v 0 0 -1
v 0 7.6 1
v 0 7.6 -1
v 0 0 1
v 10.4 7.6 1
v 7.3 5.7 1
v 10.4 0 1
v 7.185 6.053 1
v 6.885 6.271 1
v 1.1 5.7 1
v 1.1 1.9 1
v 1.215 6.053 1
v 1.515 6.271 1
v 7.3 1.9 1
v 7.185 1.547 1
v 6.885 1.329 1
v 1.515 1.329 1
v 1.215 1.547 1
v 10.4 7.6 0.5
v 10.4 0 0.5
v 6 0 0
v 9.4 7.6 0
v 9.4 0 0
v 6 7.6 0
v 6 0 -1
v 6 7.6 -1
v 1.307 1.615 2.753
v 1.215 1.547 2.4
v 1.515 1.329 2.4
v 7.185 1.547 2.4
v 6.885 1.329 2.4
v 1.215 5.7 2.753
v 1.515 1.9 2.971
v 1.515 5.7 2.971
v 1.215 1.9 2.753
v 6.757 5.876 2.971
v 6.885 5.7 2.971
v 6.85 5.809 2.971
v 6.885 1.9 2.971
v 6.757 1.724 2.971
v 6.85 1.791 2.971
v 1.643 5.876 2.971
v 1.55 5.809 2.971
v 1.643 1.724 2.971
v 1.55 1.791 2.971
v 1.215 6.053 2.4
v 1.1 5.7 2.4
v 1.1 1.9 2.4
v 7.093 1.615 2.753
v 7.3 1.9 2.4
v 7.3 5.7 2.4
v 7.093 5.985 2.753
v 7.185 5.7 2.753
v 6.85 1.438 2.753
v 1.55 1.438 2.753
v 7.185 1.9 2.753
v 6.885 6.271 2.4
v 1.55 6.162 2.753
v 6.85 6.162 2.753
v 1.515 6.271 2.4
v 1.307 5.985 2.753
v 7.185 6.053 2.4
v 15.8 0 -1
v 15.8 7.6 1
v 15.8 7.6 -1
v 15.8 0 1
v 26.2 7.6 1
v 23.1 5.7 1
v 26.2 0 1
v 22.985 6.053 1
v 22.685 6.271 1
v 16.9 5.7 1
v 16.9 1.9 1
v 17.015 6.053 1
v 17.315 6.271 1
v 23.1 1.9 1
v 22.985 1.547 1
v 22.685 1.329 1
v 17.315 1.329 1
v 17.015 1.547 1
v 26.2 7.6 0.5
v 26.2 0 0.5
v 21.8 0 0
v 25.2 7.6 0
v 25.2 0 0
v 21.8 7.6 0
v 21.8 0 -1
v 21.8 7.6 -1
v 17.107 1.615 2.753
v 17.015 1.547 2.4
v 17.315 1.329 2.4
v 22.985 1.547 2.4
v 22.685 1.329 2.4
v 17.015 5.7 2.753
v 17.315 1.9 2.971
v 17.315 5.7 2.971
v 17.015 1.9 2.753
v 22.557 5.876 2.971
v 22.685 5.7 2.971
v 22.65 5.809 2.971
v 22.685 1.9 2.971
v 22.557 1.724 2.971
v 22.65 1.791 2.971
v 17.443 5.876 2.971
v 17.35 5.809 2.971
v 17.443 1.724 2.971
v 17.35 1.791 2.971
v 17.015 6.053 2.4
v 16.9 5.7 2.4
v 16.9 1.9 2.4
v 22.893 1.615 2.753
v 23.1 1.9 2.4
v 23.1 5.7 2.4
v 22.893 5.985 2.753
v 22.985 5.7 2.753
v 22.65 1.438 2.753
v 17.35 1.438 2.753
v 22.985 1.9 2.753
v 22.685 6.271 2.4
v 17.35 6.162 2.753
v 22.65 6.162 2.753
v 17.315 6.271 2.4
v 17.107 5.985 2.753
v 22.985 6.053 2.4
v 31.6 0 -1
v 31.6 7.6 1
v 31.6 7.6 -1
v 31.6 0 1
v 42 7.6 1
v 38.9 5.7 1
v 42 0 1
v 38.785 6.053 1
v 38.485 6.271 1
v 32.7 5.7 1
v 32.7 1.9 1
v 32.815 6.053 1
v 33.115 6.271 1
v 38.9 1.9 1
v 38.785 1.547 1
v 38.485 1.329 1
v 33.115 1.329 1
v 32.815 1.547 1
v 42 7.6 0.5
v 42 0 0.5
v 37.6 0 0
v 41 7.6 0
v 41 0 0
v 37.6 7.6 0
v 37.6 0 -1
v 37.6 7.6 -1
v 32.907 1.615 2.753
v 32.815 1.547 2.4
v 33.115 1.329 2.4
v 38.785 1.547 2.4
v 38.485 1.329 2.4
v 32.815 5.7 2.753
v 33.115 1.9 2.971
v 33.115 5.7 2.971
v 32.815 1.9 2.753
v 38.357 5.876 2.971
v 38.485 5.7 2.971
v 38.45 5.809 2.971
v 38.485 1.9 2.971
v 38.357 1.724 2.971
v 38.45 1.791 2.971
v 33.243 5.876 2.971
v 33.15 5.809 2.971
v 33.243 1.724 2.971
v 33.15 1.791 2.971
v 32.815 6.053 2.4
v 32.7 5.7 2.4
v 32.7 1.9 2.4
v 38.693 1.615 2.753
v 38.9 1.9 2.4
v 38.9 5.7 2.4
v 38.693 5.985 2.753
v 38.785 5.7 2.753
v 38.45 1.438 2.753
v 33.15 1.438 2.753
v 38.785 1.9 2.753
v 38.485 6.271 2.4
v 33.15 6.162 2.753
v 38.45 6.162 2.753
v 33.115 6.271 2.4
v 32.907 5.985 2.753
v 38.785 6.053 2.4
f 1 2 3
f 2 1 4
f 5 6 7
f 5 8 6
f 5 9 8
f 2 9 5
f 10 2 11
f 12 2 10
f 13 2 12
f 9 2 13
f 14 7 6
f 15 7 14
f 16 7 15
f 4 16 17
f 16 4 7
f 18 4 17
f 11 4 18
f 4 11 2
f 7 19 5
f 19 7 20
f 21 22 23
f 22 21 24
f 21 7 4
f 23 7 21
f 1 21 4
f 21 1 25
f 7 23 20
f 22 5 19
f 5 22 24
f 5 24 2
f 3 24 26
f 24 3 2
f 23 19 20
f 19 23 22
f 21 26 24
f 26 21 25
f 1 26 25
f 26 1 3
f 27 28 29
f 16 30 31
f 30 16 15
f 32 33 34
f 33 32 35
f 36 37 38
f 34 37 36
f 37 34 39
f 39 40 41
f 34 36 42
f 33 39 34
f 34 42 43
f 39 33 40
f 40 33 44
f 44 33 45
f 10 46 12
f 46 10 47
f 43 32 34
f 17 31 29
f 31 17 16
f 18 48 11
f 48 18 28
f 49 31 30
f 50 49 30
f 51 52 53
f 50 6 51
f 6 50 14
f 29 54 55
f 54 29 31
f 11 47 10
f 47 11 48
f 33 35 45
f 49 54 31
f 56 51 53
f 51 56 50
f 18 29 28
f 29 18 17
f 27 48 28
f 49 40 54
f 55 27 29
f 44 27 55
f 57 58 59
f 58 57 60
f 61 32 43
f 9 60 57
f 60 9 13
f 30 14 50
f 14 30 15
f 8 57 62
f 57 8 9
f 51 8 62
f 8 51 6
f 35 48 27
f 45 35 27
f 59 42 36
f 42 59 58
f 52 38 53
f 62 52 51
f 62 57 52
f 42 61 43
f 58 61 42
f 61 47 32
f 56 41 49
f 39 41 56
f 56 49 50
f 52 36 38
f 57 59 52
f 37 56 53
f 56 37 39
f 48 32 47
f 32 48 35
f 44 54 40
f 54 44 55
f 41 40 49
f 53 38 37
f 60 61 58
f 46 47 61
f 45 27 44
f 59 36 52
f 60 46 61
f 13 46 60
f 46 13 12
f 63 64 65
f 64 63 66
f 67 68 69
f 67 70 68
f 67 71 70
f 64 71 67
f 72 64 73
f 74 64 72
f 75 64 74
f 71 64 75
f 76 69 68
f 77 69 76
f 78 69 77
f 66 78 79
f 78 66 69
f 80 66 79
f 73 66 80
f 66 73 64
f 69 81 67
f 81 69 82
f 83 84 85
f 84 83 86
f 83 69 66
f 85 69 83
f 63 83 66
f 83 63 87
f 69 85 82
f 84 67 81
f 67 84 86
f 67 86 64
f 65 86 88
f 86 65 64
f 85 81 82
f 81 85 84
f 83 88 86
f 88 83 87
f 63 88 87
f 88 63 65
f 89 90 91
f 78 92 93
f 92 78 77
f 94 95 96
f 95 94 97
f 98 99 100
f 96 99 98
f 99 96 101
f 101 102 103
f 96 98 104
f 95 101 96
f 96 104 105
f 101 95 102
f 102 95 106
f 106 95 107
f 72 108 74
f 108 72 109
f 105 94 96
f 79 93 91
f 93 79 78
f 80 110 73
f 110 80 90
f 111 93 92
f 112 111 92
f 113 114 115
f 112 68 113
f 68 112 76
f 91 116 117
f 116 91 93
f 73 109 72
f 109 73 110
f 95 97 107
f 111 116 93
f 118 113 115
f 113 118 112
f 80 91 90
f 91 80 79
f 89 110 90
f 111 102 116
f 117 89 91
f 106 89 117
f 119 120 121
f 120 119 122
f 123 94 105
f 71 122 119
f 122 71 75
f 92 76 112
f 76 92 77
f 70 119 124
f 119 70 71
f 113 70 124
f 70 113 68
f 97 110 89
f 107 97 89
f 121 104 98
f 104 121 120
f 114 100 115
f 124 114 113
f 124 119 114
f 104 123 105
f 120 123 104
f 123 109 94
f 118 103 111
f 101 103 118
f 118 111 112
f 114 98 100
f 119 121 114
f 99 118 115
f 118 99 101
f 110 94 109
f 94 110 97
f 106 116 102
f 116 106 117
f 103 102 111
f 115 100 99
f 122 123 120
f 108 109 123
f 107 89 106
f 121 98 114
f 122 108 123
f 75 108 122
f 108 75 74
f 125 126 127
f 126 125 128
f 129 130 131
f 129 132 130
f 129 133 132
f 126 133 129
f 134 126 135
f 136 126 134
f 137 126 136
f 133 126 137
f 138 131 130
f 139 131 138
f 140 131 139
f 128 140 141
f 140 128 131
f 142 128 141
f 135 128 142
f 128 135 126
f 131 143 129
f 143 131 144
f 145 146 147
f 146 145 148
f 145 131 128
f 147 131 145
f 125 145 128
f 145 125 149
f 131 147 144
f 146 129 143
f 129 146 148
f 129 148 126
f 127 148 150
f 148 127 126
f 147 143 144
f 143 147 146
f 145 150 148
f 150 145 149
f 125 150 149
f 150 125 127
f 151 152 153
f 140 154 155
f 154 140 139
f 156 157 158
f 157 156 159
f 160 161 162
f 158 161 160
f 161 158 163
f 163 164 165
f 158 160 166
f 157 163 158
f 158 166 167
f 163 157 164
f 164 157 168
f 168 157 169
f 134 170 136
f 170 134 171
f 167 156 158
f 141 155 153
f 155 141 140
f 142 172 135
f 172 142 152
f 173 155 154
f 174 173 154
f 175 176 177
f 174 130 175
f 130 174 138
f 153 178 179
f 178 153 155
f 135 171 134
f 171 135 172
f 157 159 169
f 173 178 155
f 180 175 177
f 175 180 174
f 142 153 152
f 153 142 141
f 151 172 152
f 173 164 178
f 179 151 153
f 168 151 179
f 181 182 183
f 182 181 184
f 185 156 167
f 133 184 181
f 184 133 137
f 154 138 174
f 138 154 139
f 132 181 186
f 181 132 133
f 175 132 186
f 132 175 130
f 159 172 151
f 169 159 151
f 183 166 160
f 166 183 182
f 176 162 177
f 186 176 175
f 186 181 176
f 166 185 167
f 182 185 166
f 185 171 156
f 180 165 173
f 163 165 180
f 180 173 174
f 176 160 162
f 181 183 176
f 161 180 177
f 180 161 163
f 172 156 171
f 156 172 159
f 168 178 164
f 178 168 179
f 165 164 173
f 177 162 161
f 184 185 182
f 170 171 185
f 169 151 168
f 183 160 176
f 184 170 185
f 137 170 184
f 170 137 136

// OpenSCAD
$fa = 1;
$fs = 0.4;

module button_insert() {
    difference() {
        // === Base rectangle ===
        cube([10.4, 7.6, 1]);

        // === Triangular prism ===
        translate([8.6, 9, -0.4])
            rotate([90, 0, 0])
            linear_extrude(height=12)
                polygon(points=[[0,0], [2,0], [2,1]]);
    }

    // === Bottom extension ===
    translate([0, 0, -1.0])
        cube([6, 7.6, 1.2]);

    // === Rounded top cap ===
    translate([1.7, 1.9, 1])
    minkowski() {
        cube([5, 3.8, 1.4]);
        sphere(r=0.6);
    }
}

// === Create 3 spaced parts ===
for (i = [0:2]) {
    translate([i * (10.8 + 5), 0, 0])
        button_insert();
}
